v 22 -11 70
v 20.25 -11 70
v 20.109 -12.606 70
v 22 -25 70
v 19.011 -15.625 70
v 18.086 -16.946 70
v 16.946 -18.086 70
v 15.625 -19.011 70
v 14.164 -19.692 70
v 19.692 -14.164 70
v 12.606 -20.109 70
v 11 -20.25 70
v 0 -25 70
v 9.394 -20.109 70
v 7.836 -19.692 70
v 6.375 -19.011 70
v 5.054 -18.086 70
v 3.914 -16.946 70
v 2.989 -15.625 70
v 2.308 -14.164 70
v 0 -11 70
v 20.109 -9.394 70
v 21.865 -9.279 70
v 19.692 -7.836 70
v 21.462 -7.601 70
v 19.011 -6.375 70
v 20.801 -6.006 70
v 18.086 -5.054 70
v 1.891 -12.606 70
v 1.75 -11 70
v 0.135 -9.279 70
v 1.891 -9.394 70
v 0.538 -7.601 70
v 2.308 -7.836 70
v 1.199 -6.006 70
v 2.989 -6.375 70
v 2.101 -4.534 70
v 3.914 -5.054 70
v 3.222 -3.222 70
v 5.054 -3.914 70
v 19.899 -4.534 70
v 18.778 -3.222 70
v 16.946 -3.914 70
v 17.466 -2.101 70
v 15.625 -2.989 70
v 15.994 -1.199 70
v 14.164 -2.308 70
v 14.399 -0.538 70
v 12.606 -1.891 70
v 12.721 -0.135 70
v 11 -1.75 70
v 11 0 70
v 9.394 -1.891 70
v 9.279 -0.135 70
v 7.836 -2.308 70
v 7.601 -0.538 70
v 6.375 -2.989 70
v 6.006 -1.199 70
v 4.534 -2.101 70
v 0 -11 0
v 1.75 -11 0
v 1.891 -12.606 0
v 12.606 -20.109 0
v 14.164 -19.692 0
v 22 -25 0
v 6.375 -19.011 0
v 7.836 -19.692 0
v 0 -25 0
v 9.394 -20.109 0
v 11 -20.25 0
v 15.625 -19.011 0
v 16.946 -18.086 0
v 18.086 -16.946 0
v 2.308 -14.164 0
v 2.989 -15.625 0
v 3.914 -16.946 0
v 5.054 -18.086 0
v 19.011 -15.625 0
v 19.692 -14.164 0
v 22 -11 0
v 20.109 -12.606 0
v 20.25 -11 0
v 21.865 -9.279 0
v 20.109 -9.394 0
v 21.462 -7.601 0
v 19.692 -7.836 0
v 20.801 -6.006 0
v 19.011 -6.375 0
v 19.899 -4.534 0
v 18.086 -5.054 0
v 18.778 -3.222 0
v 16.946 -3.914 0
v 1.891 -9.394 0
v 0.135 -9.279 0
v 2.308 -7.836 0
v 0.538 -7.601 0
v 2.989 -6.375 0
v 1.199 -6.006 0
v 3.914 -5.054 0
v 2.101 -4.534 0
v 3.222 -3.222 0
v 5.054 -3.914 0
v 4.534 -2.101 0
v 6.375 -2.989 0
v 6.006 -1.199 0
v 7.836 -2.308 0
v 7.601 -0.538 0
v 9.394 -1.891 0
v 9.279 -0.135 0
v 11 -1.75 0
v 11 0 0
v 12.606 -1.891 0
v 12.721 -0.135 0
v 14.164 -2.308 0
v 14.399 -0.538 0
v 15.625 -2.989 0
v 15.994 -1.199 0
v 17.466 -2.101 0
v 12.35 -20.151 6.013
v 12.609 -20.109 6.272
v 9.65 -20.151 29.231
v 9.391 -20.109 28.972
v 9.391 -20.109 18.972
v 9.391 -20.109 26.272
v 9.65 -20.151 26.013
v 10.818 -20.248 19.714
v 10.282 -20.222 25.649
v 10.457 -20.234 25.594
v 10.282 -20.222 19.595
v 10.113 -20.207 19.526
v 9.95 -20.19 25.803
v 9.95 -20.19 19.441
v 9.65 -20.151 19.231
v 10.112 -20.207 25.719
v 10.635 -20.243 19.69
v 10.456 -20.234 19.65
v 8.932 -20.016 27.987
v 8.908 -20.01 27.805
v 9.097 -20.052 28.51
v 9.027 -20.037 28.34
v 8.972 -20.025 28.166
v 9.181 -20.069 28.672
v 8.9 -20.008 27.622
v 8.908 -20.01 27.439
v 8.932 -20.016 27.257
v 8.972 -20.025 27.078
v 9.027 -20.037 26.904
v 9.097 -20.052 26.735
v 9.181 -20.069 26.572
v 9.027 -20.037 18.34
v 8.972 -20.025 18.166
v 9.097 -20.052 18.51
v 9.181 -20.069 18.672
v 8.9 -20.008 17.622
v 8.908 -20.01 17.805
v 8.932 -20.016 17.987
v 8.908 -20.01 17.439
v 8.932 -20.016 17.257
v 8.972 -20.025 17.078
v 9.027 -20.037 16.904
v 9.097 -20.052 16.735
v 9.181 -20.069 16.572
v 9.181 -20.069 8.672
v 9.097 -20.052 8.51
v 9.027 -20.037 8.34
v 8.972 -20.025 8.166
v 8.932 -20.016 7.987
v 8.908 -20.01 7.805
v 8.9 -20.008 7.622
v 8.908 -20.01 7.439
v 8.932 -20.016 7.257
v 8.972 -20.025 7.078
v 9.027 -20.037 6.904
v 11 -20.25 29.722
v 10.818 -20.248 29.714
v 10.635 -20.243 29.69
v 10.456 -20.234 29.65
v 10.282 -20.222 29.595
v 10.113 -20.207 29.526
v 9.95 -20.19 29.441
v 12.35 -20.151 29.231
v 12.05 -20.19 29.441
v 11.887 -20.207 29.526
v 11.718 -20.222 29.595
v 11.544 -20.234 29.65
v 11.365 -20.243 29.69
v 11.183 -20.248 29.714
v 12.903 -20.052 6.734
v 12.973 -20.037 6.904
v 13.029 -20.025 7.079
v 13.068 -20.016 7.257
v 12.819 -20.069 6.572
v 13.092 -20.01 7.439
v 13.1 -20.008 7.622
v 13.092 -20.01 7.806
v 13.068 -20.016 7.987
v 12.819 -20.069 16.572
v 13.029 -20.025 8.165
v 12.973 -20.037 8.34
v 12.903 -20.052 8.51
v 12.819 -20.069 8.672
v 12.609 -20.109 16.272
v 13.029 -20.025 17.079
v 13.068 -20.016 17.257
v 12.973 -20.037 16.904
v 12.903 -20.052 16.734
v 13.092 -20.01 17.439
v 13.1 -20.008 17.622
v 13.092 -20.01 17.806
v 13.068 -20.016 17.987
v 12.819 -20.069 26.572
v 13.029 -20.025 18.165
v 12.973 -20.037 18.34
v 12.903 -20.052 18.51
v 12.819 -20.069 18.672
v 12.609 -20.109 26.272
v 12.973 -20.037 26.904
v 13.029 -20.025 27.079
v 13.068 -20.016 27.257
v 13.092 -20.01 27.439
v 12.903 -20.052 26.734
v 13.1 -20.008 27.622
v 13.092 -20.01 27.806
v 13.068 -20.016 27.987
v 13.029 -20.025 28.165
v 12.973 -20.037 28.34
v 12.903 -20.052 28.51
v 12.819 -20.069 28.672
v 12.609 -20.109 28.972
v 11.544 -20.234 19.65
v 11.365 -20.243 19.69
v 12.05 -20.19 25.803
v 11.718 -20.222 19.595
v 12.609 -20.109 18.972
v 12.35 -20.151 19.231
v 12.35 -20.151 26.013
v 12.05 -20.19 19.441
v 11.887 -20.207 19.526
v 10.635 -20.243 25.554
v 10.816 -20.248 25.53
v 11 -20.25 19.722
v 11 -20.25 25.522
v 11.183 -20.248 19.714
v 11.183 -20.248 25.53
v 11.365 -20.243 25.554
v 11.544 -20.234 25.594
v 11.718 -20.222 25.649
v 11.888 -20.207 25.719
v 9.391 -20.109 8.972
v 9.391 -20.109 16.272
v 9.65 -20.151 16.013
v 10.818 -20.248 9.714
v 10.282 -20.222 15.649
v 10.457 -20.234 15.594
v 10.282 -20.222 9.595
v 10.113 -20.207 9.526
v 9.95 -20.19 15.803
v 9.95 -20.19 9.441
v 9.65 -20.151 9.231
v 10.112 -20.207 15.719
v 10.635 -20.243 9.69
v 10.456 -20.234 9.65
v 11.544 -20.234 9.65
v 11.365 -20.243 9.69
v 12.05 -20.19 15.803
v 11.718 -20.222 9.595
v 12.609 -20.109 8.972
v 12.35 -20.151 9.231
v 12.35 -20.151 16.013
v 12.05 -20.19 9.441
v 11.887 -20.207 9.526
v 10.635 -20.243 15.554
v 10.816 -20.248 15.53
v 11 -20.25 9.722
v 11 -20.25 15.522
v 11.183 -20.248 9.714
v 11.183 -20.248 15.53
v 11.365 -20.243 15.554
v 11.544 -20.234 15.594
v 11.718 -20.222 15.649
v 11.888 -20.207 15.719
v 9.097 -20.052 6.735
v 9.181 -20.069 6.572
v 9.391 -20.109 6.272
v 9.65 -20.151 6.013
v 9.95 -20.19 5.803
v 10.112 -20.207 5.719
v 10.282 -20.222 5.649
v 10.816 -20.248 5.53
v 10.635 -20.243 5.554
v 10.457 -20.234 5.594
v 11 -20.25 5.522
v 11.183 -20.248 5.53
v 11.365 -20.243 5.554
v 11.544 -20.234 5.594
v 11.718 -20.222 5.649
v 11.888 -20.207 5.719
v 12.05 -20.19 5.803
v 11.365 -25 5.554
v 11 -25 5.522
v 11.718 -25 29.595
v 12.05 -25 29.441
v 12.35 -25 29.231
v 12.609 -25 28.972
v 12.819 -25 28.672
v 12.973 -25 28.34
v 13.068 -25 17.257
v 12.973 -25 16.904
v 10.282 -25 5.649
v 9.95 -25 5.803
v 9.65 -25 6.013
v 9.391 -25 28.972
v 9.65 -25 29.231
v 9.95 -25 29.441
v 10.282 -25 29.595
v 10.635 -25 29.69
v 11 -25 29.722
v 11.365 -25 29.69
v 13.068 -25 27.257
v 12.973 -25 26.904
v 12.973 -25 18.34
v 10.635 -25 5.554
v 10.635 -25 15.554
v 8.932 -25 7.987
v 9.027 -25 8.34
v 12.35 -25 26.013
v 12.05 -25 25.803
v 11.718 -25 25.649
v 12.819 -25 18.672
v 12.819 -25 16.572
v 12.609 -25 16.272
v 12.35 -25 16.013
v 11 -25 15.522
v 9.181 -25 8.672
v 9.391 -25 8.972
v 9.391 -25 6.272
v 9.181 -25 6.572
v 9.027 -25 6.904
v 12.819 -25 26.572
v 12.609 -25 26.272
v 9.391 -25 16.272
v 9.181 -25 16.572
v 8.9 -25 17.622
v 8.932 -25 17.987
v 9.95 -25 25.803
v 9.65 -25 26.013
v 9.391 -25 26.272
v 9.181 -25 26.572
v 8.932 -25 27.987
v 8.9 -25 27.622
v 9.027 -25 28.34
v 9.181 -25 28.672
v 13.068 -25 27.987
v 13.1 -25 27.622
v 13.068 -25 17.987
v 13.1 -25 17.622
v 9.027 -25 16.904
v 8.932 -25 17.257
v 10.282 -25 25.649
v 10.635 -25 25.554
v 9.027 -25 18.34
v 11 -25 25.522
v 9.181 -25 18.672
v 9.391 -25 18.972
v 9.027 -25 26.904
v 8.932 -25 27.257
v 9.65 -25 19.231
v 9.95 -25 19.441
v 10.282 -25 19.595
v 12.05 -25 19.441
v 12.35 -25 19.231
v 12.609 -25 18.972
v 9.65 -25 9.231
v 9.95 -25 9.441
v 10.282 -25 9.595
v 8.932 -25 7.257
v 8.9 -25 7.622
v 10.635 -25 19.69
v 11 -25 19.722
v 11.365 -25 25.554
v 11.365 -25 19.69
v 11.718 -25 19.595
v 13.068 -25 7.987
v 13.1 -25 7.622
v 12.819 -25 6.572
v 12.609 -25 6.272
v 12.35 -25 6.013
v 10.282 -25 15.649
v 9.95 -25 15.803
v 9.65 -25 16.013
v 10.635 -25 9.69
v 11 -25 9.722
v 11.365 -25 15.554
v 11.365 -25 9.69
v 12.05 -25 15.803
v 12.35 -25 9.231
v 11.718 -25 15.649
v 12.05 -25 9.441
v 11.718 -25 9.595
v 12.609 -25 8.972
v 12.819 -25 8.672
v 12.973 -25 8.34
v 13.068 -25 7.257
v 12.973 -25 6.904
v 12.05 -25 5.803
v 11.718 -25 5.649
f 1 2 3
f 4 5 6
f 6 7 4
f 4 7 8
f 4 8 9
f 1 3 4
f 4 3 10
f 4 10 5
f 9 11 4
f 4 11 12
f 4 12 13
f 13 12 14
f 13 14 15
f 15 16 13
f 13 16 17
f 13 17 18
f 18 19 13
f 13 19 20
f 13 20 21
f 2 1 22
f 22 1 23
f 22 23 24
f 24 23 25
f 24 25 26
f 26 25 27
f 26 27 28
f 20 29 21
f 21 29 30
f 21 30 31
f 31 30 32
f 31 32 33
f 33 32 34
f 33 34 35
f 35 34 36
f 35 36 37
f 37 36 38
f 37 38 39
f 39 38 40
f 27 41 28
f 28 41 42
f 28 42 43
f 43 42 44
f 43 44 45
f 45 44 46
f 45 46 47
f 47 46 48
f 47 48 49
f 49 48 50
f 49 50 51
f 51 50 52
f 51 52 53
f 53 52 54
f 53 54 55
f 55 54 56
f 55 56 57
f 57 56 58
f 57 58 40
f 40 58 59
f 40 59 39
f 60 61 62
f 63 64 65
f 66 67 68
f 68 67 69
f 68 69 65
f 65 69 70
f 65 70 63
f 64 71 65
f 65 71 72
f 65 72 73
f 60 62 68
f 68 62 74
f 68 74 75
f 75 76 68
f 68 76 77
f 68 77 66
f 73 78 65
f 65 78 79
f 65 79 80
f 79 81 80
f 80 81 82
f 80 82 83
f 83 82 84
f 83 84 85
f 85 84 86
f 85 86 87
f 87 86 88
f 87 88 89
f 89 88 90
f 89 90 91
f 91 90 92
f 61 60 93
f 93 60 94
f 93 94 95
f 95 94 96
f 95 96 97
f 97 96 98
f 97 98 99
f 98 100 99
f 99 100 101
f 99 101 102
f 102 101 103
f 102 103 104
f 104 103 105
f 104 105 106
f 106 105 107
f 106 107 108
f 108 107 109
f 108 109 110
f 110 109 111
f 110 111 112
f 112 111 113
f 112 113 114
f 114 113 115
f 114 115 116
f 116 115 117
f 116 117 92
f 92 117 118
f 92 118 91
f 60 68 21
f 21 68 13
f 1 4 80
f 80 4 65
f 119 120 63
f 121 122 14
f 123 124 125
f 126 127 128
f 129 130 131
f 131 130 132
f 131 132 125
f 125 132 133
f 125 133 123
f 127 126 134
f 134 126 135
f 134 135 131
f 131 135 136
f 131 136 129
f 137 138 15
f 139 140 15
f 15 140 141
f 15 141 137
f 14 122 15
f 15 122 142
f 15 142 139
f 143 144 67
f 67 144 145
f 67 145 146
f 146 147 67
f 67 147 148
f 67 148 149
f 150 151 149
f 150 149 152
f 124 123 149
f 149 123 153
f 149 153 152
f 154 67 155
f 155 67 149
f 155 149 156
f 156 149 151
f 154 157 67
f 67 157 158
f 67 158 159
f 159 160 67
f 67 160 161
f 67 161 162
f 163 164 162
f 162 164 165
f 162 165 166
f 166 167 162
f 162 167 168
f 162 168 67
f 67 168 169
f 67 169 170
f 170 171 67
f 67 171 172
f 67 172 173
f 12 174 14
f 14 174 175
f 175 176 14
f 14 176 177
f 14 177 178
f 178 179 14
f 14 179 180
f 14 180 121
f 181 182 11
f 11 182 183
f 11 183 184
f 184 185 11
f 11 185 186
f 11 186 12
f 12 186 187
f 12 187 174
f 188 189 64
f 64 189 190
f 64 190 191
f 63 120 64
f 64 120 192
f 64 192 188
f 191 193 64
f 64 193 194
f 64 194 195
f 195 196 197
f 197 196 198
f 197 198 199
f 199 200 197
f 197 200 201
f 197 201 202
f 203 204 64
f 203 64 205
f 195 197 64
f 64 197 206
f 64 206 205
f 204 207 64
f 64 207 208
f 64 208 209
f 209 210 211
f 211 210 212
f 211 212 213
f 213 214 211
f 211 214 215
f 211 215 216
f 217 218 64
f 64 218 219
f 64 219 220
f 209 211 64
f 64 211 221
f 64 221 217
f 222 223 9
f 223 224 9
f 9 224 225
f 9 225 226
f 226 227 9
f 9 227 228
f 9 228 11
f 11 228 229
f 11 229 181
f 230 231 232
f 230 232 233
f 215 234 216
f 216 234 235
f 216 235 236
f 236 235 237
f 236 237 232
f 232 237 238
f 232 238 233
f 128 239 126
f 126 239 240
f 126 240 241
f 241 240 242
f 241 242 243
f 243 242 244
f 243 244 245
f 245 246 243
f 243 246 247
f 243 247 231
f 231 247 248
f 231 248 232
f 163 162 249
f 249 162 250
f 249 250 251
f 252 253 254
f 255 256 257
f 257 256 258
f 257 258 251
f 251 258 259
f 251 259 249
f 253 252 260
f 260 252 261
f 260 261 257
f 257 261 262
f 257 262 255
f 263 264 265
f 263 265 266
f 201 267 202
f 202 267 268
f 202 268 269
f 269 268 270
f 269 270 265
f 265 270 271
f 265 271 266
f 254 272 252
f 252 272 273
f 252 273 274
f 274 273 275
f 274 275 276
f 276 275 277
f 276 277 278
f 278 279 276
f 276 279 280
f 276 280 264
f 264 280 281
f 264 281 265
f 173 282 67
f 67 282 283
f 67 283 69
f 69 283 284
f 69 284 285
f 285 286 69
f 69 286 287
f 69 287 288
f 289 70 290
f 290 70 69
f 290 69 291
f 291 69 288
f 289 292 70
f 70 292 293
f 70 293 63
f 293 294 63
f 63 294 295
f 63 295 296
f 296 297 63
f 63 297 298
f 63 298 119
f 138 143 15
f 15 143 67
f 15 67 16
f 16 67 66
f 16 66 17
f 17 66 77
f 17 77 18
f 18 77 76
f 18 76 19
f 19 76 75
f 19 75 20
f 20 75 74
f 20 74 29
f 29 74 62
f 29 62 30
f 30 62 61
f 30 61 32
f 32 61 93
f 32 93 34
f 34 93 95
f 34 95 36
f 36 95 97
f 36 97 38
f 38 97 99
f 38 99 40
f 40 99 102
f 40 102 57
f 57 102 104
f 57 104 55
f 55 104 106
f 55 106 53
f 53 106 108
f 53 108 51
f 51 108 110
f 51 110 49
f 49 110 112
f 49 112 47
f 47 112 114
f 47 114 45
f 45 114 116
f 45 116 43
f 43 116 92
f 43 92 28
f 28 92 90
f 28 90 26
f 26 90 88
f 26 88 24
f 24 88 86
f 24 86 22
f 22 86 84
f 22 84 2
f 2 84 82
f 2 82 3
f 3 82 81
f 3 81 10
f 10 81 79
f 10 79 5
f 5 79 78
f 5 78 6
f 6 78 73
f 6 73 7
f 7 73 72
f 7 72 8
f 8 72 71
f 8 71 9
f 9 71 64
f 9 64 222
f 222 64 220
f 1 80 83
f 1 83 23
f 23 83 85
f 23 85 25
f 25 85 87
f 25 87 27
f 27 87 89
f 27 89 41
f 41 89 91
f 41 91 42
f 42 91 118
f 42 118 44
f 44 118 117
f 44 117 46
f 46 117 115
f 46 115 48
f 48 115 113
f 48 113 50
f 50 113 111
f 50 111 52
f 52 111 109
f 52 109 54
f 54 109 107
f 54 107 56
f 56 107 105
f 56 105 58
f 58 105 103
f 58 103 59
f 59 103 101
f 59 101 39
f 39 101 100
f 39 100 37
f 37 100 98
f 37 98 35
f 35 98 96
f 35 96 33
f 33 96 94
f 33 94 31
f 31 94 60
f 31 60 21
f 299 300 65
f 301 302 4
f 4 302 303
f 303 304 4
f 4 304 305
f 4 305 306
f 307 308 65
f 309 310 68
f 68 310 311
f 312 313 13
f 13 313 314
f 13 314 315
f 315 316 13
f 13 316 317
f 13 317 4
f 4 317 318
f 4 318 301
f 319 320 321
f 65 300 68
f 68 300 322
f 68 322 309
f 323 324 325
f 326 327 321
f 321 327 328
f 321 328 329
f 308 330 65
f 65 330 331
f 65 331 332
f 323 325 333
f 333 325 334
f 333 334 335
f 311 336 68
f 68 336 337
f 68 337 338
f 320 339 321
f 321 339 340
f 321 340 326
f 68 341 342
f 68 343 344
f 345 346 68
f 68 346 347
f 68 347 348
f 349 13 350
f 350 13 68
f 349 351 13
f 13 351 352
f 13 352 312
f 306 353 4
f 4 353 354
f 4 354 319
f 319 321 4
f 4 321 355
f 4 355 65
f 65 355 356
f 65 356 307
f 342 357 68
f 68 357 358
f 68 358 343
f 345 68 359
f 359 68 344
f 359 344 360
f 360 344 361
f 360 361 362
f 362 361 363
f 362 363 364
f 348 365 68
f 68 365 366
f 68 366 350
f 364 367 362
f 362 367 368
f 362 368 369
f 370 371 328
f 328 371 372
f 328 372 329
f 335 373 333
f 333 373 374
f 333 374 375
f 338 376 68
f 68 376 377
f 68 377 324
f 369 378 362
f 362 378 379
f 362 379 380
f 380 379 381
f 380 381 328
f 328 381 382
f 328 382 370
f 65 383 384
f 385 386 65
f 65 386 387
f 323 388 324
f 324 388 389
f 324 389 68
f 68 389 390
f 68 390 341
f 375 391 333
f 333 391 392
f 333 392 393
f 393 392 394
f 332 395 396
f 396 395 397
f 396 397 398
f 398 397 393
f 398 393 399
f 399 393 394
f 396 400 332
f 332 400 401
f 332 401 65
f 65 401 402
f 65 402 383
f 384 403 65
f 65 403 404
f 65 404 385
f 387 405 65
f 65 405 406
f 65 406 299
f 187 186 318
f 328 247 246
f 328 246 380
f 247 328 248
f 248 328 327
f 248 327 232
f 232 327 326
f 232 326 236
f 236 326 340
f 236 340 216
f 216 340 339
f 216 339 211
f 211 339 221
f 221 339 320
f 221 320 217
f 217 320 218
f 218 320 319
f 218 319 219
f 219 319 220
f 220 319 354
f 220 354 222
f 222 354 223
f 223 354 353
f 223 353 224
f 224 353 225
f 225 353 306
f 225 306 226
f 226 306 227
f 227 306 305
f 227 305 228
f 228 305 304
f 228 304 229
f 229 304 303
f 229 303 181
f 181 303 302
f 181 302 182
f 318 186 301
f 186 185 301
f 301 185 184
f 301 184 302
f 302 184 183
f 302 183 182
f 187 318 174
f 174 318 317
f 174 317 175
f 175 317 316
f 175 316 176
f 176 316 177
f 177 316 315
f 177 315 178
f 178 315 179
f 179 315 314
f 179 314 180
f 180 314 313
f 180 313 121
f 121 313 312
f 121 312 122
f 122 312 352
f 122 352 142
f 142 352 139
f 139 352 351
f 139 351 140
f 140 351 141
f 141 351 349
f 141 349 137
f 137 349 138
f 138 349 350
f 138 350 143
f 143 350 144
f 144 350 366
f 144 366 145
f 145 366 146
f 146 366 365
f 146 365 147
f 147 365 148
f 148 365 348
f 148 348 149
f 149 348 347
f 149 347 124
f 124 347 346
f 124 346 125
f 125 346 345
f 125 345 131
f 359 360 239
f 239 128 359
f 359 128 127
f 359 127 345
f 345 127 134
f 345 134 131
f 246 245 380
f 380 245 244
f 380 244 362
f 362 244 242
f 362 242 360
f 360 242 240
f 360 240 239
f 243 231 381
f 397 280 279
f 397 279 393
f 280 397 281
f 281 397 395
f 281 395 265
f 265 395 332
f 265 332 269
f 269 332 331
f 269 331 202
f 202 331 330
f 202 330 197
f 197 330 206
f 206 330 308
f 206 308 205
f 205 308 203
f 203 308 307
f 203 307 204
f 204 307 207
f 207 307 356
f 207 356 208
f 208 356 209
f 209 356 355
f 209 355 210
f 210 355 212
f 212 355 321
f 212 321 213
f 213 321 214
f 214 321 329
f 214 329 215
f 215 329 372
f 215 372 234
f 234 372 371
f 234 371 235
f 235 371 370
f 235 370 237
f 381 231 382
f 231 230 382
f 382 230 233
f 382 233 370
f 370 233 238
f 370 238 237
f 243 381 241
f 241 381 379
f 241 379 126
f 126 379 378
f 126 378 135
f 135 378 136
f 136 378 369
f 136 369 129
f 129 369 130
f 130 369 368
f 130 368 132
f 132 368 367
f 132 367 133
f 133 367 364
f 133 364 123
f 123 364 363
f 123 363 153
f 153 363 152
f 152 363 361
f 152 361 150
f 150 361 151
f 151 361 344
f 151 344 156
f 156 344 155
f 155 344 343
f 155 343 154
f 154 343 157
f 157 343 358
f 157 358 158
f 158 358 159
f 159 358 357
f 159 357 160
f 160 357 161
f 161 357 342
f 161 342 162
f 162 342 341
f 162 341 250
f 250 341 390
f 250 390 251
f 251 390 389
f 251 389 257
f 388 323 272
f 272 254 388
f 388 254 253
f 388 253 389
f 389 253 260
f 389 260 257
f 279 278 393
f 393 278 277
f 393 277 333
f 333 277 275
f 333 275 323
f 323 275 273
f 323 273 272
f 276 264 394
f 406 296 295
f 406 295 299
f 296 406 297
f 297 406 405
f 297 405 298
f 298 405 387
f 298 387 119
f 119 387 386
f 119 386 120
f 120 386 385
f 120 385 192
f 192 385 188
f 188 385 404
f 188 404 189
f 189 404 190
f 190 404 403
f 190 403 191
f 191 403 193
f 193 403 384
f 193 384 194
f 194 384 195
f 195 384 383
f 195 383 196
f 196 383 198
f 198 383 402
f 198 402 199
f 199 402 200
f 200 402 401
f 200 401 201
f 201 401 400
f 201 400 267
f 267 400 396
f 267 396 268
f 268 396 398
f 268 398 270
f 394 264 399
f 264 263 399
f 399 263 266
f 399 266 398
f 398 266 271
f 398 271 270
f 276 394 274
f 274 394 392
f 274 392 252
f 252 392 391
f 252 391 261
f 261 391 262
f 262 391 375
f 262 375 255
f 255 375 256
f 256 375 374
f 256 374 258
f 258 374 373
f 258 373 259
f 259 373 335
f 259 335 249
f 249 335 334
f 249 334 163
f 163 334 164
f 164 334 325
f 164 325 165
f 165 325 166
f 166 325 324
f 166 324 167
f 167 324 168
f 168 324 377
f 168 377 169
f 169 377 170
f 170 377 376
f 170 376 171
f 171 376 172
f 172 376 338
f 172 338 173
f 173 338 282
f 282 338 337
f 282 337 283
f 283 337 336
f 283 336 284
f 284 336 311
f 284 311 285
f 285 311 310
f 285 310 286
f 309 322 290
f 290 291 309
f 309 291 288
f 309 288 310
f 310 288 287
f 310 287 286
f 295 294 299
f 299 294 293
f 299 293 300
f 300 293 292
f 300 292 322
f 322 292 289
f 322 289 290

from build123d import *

# Parameters (mm, degrees)
CROQUIS1_W                = 22
CROQUIS1_H                = 22
CROQUIS1_R                = 9.25
SALIENTE_EXTRUIR1_DEPTH   = 70
REDONDEO1_R               = 11
CROQUIS6_W                = 22
CROQUIS6_H                = 70
SALIENTE_EXTRUIR2_DEPTH   = 3
TALADRO_ROSCADO_M51_D     = 4.2
TALADRO_ROSCADO_M51_DEPTH = 14
TALADRO_ROSCADO_M51_TIP   = 1.2618073


with BuildPart() as part:
    # Croquis1 → Saliente-Extruir1 (new body)
    with BuildSketch(Plane.XY):
        with Locations((11, -11)):
            Rectangle(CROQUIS1_W, CROQUIS1_H)
        with Locations((11, -11)):
            Circle(CROQUIS1_R, mode=Mode.SUBTRACT)
    extrude(amount=SALIENTE_EXTRUIR1_DEPTH)

    # Redondeo1
    redondeo1_edges = [part.edges().sort_by_distance(p)[0] for p in [
        (22, 0, 35),
        (0, 0, 35),
    ]]
    fillet(redondeo1_edges, radius=REDONDEO1_R - 0.0001)  # a hair under: the kernel refuses the full size

    # Croquis6 → Saliente-Extruir2 (add)
    with BuildSketch(Plane.XZ.offset(22)):
        with Locations((11, 35)):
            Rectangle(CROQUIS6_W, CROQUIS6_H)
    extrude(amount=SALIENTE_EXTRUIR2_DEPTH)

    # Taladro roscado M51
    with Locations(Plane(origin=(0, -25, 0), x_dir=(-1, 0, 0), z_dir=(0, -1, 0))):
        with Locations((-11, -7.622118599), (-11, -17.622118599), (-11, -27.622118599)):
            Hole(TALADRO_ROSCADO_M51_D / 2, depth=TALADRO_ROSCADO_M51_DEPTH)
            with Locations((0, 0, -(TALADRO_ROSCADO_M51_DEPTH + TALADRO_ROSCADO_M51_TIP / 2))):  # 118° drill point
                Cone(0, TALADRO_ROSCADO_M51_D / 2, TALADRO_ROSCADO_M51_TIP, mode=Mode.SUBTRACT)


solid = part.part
